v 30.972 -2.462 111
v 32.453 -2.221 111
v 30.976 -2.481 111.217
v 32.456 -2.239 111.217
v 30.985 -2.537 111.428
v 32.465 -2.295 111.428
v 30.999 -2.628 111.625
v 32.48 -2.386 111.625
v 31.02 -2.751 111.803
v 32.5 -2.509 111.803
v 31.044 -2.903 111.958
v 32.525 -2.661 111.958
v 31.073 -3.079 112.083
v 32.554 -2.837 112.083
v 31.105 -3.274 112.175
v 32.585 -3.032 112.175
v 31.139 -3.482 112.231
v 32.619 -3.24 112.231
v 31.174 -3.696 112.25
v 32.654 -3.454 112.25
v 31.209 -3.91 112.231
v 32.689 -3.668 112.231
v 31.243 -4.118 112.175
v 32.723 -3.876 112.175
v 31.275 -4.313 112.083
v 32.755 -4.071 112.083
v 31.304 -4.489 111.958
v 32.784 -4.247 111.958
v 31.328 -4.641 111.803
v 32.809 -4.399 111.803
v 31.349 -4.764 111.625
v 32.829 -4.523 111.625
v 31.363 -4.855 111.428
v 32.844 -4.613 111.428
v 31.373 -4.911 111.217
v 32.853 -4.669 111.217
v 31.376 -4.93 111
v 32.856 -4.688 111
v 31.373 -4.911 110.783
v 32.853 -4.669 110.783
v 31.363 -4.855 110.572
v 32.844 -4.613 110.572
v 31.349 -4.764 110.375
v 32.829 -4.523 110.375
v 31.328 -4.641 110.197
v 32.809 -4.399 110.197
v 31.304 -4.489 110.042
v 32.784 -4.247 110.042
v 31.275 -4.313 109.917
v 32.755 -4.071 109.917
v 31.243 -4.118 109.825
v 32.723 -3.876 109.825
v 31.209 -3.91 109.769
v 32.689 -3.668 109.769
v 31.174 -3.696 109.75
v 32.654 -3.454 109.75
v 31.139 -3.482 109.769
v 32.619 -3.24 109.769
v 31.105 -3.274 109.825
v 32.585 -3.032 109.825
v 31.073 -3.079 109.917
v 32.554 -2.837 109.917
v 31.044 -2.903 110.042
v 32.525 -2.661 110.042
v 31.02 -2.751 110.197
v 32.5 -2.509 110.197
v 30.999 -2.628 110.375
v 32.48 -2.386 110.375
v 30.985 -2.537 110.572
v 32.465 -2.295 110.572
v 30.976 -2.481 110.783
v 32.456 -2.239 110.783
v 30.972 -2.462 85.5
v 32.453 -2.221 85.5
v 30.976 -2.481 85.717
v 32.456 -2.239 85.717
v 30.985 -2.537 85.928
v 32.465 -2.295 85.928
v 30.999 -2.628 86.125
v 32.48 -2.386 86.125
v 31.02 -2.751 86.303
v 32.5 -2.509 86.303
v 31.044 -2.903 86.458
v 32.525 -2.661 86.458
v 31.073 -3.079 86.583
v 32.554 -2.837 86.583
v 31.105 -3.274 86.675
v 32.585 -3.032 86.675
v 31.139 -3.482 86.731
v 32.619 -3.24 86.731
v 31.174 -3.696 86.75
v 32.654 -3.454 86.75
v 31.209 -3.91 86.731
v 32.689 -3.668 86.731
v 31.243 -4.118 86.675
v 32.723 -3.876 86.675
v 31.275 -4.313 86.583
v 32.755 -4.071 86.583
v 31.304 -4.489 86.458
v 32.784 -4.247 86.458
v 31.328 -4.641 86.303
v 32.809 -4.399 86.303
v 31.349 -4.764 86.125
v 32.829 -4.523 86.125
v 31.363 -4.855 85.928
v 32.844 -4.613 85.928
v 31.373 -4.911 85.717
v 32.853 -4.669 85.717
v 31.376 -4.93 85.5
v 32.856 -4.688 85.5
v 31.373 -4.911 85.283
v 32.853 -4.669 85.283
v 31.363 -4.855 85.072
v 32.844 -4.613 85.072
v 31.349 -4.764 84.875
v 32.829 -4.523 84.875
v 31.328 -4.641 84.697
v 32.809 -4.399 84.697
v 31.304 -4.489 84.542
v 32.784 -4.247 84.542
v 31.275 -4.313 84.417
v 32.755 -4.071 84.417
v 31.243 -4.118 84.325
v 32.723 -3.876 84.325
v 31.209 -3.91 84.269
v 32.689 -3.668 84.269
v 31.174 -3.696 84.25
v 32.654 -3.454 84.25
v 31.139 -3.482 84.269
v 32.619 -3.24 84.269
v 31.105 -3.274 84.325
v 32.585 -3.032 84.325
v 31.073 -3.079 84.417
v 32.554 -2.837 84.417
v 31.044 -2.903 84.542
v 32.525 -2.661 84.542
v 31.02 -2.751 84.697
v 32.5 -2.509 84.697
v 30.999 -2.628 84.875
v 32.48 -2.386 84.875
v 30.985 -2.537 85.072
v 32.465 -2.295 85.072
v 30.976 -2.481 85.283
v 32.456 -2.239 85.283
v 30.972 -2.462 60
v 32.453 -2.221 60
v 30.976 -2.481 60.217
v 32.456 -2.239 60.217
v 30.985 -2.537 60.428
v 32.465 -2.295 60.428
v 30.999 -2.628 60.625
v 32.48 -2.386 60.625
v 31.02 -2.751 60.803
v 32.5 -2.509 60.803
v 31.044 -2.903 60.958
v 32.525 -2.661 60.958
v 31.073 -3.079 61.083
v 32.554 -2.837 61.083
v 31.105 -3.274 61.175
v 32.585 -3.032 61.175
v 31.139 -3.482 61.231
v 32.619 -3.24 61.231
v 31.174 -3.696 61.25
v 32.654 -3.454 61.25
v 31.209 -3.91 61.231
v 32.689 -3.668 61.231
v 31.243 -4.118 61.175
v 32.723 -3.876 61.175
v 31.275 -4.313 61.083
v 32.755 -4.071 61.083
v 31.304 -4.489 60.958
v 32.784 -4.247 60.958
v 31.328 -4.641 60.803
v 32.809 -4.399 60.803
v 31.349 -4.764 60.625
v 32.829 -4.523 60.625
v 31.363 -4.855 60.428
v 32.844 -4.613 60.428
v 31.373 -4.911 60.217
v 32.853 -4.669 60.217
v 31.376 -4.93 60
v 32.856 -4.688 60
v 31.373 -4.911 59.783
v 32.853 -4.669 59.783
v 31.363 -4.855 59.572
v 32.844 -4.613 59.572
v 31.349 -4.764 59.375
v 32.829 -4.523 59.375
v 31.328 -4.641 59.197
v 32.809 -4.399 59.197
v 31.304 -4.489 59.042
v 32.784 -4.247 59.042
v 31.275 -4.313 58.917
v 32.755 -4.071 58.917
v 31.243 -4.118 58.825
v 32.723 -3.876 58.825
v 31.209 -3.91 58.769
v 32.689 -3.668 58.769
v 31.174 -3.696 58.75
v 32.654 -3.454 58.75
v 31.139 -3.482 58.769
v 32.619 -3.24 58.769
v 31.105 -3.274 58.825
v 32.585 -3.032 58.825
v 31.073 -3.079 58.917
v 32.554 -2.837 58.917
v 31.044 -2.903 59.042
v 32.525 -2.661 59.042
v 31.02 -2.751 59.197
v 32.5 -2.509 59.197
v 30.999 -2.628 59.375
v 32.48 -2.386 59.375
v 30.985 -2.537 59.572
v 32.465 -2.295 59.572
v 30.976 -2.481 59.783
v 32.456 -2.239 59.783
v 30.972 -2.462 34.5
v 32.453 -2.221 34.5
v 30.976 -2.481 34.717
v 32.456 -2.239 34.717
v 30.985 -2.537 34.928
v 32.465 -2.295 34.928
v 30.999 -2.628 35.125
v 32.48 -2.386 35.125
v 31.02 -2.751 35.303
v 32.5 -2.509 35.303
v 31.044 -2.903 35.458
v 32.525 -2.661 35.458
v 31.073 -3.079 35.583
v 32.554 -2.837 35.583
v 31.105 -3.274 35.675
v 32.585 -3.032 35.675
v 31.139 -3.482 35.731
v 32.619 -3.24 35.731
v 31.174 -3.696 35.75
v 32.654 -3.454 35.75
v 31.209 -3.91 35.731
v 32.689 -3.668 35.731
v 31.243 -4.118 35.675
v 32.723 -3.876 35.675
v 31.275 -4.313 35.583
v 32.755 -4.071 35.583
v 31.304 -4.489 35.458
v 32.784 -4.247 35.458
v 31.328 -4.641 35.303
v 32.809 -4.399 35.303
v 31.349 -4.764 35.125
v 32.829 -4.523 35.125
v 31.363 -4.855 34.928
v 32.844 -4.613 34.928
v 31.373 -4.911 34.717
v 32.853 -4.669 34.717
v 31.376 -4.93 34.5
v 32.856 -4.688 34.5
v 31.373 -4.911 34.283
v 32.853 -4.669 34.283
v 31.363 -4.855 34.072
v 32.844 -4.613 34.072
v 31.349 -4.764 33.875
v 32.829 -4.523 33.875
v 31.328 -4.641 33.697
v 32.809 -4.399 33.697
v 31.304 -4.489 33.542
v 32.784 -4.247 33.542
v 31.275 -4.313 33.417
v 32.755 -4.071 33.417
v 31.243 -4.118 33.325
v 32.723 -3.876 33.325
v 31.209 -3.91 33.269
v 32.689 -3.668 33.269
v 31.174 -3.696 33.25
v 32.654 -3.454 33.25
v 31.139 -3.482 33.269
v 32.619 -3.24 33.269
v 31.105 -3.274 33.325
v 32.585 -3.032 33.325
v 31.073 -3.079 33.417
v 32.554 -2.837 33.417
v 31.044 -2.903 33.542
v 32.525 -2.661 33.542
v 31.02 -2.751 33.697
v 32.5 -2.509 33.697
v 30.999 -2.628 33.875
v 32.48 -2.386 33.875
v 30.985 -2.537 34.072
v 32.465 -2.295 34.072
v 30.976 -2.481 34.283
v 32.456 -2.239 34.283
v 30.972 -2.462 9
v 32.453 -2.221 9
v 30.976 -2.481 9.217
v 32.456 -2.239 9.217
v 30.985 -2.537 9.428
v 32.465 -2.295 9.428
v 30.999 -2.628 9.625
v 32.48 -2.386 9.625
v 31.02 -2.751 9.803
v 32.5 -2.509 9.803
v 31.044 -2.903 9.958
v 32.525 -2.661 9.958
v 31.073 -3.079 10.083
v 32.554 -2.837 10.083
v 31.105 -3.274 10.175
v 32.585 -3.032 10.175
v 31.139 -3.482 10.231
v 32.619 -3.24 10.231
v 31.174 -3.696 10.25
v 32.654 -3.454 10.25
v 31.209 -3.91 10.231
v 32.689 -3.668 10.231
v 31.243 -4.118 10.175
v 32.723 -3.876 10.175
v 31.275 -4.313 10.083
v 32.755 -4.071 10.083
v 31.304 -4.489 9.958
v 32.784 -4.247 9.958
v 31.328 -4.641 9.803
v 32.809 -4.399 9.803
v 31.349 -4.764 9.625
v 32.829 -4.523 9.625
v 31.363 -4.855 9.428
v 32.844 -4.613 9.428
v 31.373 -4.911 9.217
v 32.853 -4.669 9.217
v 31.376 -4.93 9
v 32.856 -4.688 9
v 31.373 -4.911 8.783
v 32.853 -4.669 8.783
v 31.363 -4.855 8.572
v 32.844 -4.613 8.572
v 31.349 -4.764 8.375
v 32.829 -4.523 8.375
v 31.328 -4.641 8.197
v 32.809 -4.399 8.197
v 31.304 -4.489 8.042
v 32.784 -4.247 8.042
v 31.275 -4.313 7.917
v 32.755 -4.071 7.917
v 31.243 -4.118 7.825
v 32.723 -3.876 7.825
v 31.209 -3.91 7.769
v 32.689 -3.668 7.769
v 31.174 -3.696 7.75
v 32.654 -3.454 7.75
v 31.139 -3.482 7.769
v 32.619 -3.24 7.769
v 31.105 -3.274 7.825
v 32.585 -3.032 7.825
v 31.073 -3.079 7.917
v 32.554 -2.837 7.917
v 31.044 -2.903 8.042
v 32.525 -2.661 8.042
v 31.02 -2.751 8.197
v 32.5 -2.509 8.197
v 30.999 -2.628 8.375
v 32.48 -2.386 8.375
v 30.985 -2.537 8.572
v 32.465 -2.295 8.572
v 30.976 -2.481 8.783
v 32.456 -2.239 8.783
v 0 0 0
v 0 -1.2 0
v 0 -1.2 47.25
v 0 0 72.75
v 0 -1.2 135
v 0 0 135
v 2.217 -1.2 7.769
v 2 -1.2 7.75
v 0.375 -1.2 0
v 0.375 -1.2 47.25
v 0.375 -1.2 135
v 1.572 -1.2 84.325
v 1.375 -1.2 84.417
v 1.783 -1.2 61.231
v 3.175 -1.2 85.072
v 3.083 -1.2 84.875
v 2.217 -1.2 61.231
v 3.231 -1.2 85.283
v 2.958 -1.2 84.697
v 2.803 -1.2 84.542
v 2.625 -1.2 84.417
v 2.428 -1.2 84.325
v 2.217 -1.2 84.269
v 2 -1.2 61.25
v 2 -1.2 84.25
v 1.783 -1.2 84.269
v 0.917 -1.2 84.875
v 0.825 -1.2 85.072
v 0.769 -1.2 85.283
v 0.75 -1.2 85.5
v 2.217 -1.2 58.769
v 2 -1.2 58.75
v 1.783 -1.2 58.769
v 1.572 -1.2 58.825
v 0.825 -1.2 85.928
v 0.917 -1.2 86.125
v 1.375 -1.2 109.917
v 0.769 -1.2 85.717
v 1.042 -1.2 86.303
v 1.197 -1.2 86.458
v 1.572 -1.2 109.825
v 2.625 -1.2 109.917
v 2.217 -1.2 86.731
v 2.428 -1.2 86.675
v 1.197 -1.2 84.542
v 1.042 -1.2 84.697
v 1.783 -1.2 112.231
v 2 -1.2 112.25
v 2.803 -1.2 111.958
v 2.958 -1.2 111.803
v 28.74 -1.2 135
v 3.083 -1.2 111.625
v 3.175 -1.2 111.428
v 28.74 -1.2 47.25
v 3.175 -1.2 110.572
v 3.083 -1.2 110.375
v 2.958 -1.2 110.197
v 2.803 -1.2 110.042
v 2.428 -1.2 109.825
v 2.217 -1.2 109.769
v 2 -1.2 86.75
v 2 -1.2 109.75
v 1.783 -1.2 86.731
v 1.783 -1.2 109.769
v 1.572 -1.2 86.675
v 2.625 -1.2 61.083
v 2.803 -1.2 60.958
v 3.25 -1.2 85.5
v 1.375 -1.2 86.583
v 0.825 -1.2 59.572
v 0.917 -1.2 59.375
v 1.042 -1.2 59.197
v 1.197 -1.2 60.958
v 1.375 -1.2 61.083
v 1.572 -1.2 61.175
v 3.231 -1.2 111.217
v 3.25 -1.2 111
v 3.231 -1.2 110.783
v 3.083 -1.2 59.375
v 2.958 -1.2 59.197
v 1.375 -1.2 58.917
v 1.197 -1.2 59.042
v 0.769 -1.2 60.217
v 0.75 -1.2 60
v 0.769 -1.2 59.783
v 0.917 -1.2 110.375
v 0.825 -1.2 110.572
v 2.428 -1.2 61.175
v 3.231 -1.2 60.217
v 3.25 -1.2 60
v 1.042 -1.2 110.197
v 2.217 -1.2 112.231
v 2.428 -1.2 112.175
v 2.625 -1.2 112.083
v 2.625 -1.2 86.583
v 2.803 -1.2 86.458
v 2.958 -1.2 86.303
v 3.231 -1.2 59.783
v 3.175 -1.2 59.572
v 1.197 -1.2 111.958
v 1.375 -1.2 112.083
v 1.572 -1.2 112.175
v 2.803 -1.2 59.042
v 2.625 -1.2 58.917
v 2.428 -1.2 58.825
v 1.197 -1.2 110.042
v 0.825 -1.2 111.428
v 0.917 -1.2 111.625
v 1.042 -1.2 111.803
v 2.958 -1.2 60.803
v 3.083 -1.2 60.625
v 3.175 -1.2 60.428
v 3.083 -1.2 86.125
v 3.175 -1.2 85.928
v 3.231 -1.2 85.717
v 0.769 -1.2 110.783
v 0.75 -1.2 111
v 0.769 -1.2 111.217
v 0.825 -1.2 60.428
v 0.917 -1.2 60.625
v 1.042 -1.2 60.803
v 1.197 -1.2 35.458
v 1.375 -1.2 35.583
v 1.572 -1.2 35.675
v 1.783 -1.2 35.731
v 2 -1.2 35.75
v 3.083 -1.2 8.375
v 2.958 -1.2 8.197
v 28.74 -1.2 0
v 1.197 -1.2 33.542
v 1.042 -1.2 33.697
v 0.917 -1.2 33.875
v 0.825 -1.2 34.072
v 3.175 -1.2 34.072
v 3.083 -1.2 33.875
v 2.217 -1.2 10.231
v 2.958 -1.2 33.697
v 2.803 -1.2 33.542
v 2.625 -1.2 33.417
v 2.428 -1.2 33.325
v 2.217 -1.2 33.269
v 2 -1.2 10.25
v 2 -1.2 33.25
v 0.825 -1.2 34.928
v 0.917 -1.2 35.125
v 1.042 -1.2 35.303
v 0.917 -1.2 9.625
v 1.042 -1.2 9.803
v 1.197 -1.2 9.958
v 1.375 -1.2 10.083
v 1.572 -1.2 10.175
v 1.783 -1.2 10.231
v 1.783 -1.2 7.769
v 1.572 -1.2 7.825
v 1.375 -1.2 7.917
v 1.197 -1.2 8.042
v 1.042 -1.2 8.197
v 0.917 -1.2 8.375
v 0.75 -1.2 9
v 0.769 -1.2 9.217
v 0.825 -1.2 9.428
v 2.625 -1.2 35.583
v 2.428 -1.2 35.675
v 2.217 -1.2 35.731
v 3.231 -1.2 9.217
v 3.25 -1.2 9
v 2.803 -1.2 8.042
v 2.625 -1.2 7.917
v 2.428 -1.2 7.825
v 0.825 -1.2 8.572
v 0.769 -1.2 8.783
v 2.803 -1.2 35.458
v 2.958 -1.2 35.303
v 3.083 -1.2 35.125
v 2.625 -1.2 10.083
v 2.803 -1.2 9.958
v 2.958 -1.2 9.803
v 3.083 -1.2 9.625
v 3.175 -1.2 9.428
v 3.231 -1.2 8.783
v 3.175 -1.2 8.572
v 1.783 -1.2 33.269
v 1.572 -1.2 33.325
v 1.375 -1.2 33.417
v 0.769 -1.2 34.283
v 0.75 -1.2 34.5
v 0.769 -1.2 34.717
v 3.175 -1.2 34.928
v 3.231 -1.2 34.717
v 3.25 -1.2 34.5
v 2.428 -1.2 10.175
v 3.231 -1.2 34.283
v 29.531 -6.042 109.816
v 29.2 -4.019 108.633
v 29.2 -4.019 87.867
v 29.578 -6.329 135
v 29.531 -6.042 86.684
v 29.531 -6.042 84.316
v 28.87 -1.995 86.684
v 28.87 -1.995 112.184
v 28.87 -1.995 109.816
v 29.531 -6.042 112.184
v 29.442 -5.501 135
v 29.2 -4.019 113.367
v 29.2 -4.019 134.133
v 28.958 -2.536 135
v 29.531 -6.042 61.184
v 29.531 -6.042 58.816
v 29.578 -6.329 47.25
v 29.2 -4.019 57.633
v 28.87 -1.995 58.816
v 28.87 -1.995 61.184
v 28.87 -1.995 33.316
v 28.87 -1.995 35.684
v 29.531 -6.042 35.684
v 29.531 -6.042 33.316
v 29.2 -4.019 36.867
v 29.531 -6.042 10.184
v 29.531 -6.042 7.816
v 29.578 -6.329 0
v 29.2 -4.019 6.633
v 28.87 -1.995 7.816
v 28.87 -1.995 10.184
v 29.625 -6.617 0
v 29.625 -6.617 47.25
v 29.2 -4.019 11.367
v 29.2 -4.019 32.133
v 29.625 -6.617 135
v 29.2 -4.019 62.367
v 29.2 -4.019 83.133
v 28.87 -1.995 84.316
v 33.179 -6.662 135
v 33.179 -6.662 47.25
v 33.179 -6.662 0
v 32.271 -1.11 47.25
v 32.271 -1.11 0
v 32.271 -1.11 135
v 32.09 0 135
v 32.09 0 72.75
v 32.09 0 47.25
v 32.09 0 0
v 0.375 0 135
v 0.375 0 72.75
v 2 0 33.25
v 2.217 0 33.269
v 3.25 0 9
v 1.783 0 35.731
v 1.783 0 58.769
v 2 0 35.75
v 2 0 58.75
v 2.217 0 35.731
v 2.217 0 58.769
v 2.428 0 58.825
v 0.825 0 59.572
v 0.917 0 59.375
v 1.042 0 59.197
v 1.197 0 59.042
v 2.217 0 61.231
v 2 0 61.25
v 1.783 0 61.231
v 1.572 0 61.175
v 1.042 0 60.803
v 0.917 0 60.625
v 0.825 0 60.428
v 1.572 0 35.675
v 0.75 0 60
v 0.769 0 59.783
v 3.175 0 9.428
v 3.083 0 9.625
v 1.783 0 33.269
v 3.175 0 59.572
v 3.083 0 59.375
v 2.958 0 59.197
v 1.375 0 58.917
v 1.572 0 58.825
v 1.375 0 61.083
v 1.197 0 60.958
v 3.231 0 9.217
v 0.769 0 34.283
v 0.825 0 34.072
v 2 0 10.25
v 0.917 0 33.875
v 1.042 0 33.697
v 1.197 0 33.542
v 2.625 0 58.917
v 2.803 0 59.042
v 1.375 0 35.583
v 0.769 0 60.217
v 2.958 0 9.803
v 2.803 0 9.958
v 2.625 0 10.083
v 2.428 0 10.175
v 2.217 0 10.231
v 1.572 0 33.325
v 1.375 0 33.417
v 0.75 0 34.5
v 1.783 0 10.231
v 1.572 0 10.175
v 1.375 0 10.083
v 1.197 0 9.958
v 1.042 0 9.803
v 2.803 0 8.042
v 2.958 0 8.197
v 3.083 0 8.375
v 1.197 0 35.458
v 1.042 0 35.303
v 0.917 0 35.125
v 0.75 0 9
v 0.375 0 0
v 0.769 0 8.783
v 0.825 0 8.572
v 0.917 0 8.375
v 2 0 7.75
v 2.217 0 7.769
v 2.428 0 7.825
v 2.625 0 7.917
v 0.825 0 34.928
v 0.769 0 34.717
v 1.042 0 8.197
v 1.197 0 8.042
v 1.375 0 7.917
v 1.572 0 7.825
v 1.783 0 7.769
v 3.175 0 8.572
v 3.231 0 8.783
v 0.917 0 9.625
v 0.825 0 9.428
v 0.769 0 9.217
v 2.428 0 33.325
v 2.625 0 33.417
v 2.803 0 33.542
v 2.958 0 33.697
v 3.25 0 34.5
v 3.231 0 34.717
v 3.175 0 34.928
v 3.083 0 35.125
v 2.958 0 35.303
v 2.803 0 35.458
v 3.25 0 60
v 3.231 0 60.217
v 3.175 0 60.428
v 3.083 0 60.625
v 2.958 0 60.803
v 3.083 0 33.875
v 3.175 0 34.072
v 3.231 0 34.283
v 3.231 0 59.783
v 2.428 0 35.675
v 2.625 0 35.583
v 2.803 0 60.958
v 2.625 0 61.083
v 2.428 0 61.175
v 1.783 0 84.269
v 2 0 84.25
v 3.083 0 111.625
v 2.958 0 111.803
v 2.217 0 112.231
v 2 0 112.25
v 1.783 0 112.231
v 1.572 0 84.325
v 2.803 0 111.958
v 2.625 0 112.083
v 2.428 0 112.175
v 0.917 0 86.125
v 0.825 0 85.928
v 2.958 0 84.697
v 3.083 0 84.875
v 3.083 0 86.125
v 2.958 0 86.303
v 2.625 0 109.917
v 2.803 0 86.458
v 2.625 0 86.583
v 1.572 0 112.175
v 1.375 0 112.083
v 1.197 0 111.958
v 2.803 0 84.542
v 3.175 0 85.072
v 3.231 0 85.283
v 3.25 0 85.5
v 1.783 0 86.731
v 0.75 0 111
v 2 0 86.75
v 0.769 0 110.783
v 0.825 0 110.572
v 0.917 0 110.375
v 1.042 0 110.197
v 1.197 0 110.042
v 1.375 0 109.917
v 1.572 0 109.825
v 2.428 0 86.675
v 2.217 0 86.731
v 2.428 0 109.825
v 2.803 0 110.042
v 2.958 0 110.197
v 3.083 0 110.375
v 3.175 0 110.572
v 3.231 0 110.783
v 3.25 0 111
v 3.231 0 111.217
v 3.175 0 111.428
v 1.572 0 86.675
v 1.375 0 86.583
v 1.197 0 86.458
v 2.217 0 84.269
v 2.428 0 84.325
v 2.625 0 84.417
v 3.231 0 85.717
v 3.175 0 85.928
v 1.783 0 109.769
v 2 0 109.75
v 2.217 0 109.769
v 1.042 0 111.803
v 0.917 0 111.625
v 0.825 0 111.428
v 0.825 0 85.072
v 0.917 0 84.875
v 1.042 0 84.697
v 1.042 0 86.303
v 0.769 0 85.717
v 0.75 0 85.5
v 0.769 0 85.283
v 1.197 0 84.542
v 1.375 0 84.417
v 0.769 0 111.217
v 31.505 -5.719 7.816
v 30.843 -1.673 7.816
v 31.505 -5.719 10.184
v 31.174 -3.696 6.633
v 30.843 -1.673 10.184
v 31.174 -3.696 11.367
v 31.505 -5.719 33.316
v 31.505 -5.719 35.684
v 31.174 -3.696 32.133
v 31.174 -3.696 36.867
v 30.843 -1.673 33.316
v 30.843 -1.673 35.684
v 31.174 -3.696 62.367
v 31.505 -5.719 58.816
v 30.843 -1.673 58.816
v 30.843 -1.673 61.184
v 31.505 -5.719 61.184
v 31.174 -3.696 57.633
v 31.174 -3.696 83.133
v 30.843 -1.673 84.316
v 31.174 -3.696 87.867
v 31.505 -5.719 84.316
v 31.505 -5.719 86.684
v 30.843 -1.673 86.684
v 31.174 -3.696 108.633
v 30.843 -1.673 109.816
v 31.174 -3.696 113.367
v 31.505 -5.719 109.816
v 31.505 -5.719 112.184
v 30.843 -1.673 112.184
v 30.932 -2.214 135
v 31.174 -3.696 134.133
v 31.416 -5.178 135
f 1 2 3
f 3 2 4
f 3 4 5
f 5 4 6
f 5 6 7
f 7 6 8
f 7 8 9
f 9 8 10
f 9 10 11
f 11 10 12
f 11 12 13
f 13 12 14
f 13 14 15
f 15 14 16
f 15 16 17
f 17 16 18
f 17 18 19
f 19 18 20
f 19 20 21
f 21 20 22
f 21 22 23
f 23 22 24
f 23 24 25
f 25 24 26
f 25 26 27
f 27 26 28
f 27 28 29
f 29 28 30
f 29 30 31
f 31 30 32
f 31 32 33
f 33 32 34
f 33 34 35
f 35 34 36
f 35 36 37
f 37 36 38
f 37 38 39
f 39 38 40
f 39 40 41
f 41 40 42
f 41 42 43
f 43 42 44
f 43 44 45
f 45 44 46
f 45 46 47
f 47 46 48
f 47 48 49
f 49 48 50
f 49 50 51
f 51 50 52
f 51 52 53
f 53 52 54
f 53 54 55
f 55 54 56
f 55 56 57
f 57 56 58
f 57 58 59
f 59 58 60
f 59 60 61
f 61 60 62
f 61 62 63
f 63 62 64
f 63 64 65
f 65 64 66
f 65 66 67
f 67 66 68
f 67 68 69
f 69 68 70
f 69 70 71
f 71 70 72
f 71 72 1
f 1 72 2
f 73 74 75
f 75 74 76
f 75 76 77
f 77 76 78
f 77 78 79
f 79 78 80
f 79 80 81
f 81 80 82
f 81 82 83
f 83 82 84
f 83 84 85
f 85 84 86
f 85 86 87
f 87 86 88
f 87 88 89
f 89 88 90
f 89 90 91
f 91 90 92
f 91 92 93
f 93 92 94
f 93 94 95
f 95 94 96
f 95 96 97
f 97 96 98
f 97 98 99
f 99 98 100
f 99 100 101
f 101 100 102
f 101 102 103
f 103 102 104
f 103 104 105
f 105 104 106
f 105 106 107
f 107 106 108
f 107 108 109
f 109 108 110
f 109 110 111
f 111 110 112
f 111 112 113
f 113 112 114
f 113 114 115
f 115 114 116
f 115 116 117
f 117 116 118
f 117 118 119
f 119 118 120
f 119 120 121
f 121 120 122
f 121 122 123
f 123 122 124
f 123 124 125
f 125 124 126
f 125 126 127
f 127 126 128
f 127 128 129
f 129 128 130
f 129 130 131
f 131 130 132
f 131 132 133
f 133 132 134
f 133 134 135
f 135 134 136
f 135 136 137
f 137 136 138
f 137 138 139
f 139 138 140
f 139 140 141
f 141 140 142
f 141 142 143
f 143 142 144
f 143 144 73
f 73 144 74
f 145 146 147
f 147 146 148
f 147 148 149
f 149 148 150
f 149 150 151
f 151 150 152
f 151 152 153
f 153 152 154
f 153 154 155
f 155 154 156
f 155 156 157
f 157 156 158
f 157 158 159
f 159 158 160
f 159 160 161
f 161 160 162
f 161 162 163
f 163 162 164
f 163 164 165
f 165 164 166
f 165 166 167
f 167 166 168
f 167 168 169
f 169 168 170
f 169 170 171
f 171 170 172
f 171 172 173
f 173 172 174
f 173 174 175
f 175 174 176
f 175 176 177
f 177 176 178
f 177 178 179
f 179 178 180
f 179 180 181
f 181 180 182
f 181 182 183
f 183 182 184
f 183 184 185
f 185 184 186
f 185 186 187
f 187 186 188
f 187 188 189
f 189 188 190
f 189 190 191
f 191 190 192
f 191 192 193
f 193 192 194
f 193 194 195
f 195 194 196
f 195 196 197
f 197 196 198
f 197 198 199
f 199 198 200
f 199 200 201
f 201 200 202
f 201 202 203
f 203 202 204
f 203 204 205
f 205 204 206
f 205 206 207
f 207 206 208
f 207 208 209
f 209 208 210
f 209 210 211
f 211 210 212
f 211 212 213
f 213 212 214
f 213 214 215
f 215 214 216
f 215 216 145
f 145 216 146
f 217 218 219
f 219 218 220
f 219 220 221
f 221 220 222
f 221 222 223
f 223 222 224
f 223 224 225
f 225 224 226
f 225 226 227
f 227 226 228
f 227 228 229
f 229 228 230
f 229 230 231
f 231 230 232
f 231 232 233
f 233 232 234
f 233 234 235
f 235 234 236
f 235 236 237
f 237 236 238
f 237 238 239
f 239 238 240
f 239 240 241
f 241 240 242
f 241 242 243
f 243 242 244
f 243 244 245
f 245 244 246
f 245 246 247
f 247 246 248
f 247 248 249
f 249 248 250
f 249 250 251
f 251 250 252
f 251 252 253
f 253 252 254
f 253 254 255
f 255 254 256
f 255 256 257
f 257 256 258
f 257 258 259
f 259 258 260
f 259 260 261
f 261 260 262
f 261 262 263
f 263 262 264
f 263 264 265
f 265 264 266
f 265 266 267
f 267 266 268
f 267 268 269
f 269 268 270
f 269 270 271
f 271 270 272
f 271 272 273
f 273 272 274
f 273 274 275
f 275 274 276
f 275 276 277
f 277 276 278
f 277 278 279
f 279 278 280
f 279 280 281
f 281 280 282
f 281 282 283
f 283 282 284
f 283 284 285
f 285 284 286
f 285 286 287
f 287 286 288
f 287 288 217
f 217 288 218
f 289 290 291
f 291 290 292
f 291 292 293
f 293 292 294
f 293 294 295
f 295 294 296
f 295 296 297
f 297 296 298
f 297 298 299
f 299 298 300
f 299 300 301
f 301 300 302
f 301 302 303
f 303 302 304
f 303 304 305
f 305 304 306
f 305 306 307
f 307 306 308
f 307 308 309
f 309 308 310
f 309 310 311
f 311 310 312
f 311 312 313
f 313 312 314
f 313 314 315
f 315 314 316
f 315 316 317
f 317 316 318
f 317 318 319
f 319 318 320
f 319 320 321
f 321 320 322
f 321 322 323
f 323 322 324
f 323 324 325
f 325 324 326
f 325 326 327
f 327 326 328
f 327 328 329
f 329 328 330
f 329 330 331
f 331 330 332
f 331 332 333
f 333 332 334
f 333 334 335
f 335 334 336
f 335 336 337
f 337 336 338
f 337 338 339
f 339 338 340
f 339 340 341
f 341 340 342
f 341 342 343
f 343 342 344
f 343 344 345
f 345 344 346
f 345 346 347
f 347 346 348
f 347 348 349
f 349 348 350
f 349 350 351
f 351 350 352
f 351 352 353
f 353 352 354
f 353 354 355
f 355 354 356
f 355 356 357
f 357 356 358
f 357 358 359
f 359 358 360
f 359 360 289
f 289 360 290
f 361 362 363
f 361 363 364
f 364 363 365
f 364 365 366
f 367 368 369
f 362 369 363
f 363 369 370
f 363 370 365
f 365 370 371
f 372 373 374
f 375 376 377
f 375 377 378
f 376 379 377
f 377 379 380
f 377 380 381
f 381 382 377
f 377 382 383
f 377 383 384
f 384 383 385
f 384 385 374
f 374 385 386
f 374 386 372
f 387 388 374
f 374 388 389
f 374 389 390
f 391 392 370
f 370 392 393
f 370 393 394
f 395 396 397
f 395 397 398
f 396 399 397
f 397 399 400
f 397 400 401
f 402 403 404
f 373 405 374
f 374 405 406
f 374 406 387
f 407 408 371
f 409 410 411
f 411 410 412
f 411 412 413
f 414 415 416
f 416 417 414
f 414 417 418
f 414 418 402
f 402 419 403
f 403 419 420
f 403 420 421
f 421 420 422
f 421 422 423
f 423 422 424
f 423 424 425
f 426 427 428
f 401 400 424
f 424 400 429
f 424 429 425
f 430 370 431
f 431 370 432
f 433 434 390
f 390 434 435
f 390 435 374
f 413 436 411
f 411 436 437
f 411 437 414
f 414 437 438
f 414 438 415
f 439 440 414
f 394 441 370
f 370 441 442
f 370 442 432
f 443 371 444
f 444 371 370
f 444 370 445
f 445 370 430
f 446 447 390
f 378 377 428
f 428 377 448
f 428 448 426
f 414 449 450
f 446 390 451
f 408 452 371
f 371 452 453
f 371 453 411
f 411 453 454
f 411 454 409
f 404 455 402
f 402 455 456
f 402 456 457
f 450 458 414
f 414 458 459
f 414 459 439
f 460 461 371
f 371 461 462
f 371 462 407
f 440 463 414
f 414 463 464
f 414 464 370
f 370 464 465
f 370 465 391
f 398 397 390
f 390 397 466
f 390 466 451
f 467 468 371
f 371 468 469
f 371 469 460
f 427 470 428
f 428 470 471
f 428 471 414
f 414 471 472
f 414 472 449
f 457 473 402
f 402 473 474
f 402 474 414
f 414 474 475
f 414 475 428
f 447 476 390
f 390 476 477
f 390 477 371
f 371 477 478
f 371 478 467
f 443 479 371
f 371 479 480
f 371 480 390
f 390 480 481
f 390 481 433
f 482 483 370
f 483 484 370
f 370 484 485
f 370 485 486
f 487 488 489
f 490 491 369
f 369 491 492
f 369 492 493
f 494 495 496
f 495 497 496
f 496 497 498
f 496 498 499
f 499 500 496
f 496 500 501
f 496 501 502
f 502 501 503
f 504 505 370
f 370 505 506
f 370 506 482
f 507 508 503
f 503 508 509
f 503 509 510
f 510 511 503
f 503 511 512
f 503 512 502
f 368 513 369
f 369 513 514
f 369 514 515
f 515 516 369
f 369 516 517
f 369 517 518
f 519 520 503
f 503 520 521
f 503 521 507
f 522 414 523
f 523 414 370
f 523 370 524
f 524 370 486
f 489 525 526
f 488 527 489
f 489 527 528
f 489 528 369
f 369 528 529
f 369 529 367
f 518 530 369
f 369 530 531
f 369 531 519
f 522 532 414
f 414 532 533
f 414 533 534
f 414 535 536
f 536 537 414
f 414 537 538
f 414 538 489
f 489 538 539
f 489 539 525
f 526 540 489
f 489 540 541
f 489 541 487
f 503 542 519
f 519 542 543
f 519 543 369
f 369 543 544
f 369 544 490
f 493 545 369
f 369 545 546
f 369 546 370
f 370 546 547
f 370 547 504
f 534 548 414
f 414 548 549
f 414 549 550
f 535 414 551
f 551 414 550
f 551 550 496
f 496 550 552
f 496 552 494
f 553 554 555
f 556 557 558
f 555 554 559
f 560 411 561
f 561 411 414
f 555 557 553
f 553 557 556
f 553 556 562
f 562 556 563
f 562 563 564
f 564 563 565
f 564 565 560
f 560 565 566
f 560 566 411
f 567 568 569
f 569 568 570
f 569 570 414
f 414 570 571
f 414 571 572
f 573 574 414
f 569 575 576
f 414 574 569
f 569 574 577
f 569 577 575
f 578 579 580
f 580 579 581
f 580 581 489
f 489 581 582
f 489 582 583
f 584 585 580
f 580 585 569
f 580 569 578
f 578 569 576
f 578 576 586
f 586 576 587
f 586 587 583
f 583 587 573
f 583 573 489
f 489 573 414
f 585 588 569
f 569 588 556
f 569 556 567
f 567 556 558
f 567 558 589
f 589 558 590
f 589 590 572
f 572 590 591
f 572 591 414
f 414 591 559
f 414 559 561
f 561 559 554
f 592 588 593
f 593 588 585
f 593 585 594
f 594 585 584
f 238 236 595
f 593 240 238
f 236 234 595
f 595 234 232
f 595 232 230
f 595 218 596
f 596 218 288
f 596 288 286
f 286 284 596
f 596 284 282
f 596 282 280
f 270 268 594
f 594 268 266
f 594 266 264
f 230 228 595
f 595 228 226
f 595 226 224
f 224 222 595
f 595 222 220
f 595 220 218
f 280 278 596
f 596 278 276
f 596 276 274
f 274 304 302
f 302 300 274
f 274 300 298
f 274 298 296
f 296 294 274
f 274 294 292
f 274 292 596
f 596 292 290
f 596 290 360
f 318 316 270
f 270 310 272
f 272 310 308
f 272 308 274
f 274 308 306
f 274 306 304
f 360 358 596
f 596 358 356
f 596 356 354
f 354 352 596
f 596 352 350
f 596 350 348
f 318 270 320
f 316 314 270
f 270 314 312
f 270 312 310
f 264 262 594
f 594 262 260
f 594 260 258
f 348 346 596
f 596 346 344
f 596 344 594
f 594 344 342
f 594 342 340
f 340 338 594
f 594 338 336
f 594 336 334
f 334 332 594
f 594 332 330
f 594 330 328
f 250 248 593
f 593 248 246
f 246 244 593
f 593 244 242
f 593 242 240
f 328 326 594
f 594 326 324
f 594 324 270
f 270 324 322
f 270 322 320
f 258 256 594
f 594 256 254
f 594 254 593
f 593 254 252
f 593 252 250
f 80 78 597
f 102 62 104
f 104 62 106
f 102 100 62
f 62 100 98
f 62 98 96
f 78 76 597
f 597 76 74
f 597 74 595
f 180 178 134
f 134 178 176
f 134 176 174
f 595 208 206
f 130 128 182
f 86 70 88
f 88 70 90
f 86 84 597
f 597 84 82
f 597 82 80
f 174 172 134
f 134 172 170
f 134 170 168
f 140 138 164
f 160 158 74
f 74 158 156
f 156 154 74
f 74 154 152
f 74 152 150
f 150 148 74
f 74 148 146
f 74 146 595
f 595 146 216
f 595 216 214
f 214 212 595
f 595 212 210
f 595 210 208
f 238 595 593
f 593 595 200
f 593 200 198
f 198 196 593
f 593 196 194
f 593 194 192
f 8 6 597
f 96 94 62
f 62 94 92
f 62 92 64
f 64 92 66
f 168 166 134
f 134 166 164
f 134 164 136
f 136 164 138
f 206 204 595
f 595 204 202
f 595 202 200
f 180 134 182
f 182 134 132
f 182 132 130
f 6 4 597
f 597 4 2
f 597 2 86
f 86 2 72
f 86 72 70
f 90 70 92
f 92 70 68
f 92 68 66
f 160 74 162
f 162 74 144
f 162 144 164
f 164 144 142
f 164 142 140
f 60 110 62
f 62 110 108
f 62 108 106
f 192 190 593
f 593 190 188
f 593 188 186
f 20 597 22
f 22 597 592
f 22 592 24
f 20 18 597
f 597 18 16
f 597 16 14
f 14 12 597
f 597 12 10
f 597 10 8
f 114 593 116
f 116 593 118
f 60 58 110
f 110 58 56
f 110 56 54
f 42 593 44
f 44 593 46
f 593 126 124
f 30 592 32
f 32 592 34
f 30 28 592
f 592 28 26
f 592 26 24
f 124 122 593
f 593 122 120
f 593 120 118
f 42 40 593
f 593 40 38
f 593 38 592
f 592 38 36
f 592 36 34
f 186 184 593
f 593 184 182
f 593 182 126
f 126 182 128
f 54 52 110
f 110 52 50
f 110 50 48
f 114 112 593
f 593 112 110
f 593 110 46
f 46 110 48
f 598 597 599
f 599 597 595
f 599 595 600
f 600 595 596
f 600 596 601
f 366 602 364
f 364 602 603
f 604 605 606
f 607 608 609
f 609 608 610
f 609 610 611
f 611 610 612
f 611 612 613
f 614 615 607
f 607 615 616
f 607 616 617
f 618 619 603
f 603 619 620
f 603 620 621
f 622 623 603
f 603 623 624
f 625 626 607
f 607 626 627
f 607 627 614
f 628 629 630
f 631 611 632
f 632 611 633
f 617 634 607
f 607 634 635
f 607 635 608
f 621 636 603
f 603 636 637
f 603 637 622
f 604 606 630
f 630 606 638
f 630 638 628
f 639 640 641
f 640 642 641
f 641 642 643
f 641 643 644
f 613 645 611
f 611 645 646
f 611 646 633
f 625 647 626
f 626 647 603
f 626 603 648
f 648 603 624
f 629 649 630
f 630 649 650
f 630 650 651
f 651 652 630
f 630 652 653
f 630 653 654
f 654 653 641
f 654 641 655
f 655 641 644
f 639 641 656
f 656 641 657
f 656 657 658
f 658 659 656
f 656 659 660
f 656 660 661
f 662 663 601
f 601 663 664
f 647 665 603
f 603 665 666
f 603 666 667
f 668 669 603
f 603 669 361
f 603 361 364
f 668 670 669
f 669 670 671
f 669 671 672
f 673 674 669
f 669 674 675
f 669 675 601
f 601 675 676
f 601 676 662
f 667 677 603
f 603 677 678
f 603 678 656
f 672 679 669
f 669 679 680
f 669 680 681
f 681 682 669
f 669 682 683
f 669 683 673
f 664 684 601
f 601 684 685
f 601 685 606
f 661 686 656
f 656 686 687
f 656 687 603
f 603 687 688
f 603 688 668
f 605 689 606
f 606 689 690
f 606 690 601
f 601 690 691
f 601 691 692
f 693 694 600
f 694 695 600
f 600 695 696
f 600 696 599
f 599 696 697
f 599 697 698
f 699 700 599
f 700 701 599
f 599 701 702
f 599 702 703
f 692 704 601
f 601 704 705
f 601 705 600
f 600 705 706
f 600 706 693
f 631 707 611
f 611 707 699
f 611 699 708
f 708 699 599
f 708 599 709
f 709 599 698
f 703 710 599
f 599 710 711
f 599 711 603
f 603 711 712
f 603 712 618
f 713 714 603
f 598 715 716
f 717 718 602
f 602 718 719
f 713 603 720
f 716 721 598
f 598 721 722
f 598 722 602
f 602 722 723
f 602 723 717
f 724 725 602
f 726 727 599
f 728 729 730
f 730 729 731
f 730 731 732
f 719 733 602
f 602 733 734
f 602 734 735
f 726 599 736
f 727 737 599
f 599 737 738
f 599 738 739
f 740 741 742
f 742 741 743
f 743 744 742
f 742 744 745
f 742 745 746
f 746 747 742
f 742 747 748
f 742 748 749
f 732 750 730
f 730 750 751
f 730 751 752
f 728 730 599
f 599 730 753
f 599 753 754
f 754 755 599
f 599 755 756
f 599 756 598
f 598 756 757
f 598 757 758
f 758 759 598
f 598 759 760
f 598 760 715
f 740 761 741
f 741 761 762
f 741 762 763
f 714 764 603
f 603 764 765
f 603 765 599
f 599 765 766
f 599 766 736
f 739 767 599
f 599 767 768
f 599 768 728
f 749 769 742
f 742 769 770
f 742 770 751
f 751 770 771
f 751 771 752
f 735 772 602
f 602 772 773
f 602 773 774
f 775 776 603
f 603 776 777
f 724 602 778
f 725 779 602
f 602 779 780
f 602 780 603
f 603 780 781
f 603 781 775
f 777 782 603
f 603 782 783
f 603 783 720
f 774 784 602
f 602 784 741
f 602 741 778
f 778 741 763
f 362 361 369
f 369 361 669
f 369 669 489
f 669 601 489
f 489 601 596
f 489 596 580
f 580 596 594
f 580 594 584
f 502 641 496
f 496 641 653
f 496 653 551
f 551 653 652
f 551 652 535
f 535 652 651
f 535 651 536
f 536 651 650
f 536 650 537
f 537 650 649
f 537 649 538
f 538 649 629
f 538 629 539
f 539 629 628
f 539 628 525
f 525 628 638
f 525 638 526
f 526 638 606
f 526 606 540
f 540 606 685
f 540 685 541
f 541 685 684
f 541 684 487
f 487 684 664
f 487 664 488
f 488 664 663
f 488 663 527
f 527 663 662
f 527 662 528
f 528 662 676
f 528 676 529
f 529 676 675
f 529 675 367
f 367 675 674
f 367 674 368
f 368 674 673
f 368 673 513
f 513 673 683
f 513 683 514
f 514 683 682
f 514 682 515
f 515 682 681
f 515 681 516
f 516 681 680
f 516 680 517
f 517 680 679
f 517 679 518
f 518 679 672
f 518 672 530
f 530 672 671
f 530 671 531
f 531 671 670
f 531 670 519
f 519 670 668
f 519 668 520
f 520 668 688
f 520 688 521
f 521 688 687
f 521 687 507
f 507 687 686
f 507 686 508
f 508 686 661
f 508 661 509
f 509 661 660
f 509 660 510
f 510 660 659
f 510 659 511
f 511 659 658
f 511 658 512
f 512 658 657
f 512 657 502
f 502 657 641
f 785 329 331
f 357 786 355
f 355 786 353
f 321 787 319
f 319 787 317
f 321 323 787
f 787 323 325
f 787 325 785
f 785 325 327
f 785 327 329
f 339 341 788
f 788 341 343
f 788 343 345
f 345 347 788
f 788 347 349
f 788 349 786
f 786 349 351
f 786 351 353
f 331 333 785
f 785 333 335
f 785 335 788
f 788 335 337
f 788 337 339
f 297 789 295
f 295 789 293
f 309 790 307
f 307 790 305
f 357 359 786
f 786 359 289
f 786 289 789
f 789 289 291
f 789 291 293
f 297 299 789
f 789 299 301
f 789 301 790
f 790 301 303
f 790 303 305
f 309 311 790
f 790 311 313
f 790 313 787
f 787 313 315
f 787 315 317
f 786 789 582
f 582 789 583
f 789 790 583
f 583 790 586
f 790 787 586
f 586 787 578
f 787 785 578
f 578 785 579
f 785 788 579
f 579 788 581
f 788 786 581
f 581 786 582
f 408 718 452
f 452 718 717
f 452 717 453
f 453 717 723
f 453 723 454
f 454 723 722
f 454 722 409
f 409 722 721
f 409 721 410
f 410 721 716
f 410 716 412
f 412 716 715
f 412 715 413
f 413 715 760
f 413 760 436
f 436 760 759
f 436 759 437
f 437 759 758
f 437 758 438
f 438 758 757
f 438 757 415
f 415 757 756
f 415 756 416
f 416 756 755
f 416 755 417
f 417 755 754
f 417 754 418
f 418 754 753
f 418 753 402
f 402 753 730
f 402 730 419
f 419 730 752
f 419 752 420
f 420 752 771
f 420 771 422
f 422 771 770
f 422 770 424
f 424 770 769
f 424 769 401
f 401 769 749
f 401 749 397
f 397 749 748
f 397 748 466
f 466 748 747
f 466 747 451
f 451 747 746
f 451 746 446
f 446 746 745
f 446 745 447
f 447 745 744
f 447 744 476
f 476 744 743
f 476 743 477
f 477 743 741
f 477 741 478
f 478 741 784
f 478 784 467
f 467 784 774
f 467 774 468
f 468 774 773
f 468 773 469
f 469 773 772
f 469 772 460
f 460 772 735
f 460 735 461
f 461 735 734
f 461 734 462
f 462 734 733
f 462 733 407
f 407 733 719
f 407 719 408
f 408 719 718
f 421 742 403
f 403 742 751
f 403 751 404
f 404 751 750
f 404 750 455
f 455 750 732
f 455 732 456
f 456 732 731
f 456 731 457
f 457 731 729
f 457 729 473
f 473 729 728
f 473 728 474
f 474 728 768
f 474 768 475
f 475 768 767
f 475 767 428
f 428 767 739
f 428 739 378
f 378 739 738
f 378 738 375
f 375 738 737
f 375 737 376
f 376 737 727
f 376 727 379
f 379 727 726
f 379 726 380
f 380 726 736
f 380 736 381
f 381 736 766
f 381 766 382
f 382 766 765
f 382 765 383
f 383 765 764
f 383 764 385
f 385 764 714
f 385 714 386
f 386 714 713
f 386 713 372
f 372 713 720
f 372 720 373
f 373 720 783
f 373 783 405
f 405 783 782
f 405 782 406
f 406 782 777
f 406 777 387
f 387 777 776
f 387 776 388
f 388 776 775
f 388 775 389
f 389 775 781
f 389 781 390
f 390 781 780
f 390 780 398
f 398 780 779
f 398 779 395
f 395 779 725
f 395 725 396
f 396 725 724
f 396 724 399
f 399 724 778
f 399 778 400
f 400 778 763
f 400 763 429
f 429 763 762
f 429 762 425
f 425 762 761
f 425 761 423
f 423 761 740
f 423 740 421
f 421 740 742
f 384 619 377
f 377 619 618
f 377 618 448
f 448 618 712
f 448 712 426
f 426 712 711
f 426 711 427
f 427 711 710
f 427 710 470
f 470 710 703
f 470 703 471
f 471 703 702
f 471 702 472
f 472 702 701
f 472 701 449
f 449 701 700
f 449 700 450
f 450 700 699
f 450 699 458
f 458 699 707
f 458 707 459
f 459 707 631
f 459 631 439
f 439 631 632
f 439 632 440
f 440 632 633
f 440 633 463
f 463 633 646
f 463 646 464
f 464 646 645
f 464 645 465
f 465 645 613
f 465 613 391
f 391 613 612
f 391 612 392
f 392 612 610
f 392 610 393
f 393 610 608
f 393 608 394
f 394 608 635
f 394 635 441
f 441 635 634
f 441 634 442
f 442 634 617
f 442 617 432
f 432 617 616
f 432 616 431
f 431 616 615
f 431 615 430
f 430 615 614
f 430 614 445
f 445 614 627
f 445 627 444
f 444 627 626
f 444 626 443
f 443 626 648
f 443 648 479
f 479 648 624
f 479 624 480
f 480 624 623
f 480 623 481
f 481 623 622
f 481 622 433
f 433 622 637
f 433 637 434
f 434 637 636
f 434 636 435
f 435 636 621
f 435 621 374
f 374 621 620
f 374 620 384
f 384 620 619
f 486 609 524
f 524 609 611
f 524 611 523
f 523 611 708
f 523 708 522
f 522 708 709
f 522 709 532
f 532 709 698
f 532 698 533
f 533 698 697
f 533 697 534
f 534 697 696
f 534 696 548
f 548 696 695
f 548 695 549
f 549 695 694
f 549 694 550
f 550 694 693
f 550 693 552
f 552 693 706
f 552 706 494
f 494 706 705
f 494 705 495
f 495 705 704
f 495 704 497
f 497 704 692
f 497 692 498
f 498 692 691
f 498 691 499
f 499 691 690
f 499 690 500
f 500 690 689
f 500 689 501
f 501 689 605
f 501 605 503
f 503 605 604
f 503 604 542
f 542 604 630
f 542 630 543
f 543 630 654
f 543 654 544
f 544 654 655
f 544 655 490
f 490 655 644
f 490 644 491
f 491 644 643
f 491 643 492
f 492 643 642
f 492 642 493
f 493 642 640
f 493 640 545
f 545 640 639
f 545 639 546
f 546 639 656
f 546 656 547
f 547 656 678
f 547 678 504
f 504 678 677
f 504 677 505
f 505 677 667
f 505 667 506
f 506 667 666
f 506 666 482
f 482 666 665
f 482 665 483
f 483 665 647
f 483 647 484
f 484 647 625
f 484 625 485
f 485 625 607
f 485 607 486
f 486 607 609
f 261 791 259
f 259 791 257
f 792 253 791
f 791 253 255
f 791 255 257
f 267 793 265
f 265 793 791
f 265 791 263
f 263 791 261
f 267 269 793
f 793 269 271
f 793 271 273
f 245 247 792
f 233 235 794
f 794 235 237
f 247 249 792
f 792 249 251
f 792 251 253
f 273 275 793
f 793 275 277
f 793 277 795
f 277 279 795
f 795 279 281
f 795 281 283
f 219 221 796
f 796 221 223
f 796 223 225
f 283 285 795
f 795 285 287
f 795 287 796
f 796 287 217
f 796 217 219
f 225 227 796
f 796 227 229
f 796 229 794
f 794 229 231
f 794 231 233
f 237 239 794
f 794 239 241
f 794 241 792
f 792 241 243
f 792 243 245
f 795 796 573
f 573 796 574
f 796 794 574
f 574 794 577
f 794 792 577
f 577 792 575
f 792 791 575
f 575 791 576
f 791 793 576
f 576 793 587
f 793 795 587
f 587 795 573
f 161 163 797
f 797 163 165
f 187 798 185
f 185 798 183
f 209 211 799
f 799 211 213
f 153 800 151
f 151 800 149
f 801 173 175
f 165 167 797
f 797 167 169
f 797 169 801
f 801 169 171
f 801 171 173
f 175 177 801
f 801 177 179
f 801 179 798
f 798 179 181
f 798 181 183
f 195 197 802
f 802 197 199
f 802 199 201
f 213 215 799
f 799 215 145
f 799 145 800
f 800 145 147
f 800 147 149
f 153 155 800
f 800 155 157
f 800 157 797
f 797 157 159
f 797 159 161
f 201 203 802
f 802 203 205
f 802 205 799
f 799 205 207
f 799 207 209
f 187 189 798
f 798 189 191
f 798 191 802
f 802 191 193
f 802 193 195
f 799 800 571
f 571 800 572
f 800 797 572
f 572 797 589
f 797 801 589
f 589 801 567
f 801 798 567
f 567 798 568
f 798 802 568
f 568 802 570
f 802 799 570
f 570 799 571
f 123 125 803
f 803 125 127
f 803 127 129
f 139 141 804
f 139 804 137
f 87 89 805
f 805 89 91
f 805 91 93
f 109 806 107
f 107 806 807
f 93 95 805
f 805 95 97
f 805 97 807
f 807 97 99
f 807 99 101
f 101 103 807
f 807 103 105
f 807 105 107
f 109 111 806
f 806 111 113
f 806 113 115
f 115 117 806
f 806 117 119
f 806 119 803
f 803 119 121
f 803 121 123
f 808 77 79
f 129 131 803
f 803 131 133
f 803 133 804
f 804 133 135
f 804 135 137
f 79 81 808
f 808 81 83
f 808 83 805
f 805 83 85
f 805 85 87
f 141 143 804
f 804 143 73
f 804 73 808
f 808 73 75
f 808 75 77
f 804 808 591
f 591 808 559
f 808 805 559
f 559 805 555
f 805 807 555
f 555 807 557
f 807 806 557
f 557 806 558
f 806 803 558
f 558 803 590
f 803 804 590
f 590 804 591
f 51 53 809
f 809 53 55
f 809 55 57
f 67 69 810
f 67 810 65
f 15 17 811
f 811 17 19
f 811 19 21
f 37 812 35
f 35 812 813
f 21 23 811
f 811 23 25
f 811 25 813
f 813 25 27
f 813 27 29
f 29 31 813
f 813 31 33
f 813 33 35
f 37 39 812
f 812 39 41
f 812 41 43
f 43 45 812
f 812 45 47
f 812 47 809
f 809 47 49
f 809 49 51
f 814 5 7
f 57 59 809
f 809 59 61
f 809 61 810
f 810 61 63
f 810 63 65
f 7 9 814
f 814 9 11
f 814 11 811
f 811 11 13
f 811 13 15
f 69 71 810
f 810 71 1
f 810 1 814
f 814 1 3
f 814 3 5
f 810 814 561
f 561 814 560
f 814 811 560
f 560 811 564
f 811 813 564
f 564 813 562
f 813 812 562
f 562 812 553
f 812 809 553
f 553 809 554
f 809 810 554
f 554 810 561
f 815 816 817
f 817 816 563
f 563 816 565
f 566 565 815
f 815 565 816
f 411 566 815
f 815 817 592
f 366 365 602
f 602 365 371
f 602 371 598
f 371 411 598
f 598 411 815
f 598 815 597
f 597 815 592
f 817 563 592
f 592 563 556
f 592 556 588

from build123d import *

# Parameters (mm, degrees)
BOSS_EXTRUDE1_DEPTH = 171
SKETCH2_R           = 1.25
CUT_EXTRUDE1_DEPTH  = 50
SKETCH3_R           = 1.25
CUT_EXTRUDE2_DEPTH  = 50
CUT_EXTRUDE3_DEPTH  = 2
LPATTERN1_COUNT     = 7
LPATTERN1_PITCH     = 25.5
SKETCH5_W           = 58.422821226
SKETCH5_H           = 32.27704233
CUT_EXTRUDE4_DEPTH  = 36


with BuildPart() as part:
    # Sketch1 → Boss-Extrude1 (new body)
    with BuildSketch(Plane.XY):
        Polygon((0, 0), (32.09, 0), (33.178500502, -6.66165645), (29.624787969, -6.61699683), (28.739662203, -1.2), (0, -1.2), align=None)
    extrude(amount=BOSS_EXTRUDE1_DEPTH)

    # Sketch2 → Cut-Extrude1 (cut)
    with BuildSketch(Plane(origin=(0, 0, 0), x_dir=(1, 0, 0), z_dir=(0, 1, 0))):
        with Locations(Location((2, -9, 0), (0, 0, 270))):
            Circle(SKETCH2_R)
    cut_extrude1 = extrude(amount=-CUT_EXTRUDE1_DEPTH, mode=Mode.SUBTRACT)

    # Sketch3 → Cut-Extrude2 (cut)
    with BuildSketch(Plane(origin=(31.255513263, 5.107084422, 0), x_dir=(0, 0, -1), z_dir=(0.9869120666582158, 0.16125933363501674, 0))):
        with Locations(Location((-9, -8.674812016, 0), (0, 0, 90))):
            Circle(SKETCH3_R)
    cut_extrude2 = extrude(amount=-CUT_EXTRUDE2_DEPTH, mode=Mode.SUBTRACT)

    # Sketch4 → Cut-Extrude3 (cut)
    with BuildSketch(Plane(origin=(27.801321029, 4.542676754, 0), x_dir=(0, 0, 1), z_dir=(-0.9869120666582157, -0.1612593336350174, 0))):
        Polygon((7.816431948, -6.624812016), (6.632863896, -8.674812016), (7.816431948, -10.724812016), (10.183568052, -10.724812016), (11.367136104, -8.674812016), (10.183568052, -6.624812016), align=None)
    cut_extrude3 = extrude(amount=-CUT_EXTRUDE3_DEPTH, mode=Mode.SUBTRACT)

    # LPattern1: Cut-Extrude1, Cut-Extrude2, Cut-Extrude3 ×7
    with Locations(*[(0, 0, i * LPATTERN1_PITCH) for i in range(1, LPATTERN1_COUNT)]):
        add(cut_extrude1, mode=Mode.SUBTRACT)
        add(cut_extrude2, mode=Mode.SUBTRACT)
        add(cut_extrude3, mode=Mode.SUBTRACT)

    # Sketch5 → Cut-Extrude4 (cut)
    with BuildSketch(Plane.XY.offset(171)):
        with Locations((17.719091417, -1.694811413)):
            Rectangle(SKETCH5_W, SKETCH5_H)
    extrude(amount=-CUT_EXTRUDE4_DEPTH, mode=Mode.SUBTRACT)


solid = part.part
